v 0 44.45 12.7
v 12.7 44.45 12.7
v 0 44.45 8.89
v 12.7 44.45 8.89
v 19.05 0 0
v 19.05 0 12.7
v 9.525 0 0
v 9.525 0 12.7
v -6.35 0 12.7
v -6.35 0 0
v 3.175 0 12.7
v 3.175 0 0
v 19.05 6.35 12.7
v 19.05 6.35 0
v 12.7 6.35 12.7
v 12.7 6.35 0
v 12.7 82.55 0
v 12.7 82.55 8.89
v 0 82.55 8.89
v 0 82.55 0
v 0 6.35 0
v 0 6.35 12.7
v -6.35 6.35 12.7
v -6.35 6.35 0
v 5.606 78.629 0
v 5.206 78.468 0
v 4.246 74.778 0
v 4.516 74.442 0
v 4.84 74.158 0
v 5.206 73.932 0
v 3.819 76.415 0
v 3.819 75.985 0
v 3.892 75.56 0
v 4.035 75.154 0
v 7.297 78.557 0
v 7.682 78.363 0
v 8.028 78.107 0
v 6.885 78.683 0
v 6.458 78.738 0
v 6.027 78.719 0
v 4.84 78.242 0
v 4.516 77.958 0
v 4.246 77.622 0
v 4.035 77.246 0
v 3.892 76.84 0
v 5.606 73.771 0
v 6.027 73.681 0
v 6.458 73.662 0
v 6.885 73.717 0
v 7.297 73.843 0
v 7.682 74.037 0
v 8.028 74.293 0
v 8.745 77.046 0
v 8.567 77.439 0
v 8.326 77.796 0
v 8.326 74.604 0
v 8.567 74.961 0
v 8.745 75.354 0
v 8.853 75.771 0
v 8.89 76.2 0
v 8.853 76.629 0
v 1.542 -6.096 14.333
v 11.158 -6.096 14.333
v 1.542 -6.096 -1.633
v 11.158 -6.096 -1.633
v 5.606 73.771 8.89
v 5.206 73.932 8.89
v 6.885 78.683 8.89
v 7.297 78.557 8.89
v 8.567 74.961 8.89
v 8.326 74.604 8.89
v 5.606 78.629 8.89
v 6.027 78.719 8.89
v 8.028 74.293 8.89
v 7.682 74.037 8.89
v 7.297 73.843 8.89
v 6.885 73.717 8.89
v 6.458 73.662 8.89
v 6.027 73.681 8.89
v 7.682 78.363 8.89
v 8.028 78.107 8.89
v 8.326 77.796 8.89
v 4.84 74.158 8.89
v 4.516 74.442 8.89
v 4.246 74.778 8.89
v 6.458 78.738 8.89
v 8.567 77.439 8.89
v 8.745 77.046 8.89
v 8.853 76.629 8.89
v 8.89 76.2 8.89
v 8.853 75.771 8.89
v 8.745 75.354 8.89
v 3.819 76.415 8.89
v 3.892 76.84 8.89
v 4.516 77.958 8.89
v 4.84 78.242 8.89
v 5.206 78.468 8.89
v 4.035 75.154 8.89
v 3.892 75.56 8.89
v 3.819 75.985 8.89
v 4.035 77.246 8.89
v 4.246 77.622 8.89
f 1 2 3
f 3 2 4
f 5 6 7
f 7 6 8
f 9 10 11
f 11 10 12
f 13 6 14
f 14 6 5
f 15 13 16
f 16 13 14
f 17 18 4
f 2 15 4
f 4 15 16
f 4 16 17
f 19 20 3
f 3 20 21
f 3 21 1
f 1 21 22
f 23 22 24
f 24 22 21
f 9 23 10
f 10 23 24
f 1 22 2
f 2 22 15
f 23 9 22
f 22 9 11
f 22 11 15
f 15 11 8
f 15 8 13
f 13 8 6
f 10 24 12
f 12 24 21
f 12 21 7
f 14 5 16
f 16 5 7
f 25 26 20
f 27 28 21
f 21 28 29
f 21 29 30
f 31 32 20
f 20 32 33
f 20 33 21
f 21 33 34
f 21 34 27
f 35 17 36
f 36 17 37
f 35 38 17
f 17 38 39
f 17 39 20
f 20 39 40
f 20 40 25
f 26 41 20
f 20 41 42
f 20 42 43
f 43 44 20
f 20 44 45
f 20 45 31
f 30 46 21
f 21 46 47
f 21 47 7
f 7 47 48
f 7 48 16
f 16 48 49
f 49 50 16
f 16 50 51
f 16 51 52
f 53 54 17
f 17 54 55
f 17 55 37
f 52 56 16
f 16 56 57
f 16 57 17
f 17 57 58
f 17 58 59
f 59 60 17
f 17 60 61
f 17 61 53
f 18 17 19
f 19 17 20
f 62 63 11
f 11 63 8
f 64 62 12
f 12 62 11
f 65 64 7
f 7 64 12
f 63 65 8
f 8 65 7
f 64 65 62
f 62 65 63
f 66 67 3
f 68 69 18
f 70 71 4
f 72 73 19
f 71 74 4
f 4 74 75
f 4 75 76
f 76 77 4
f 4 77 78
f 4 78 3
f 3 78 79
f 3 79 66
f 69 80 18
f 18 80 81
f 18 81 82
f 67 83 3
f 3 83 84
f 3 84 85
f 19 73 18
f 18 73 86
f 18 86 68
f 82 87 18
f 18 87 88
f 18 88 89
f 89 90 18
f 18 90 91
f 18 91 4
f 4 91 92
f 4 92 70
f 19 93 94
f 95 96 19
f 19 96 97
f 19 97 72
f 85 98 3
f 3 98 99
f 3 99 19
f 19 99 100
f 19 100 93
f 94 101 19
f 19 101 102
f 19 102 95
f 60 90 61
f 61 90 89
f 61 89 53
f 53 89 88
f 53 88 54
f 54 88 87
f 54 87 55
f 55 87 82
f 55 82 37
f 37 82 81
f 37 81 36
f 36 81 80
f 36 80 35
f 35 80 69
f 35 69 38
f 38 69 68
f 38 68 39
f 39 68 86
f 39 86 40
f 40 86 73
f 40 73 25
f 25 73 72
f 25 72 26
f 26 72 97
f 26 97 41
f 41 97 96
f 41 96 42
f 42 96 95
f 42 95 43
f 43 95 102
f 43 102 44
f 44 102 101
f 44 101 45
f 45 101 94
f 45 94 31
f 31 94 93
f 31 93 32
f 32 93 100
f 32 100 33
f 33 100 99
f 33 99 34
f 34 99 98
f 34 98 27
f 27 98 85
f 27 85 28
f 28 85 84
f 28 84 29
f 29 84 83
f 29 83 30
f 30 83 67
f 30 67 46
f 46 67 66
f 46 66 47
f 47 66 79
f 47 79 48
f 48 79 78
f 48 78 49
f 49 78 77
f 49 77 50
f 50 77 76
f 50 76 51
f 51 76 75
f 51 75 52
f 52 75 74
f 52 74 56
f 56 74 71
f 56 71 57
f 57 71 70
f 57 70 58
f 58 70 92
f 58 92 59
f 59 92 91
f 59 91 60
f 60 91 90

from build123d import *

# Parameters (mm, degrees)
BOSS_EXTRUDE2_DEPTH = 12.7
SKETCH2_W           = 12.7
SKETCH2_H           = 6.35
BOSS_EXTRUDE3_DEPTH = 38.1
SKETCH3_W           = 6.35
SKETCH3_H           = 12.7
BOSS_EXTRUDE5_DEPTH = 6.096
BOSS_EXTRUDE5_DRAFT = -15
SKETCH4_W           = 12.7
SKETCH4_H           = 38.1
BOSS_EXTRUDE6_DEPTH = 2.54
SKETCH5_R           = 2.54
CUT_EXTRUDE1_DEPTH  = 8.89


with BuildPart() as part:
    # Sketch1 → Boss-Extrude2 (new body)
    with BuildSketch(Plane.XY):
        Polygon((12.7, 0), (19.05, 0), (19.05, 6.35), (12.7, 6.35), (12.7, 44.45), (0, 44.45), (0, 6.35), (-6.35, 6.35), (-6.35, 0), (0, 0), align=None)
    extrude(amount=BOSS_EXTRUDE2_DEPTH)

    # Sketch2 → Boss-Extrude3 (add)
    with BuildSketch(Plane(origin=(0, 44.45, 0), x_dir=(1, 0, 0), z_dir=(0, 1, 0))):
        with Locations((6.35, -3.175)):
            Rectangle(SKETCH2_W, SKETCH2_H)
    extrude(amount=BOSS_EXTRUDE3_DEPTH)


with BuildPart() as boss_extrude5_tool:
    # Sketch3 → Boss-Extrude5 (with draft: the straight prism first)
    with BuildSketch(Plane.XZ):
        with Locations((6.35, 6.35)):
            Rectangle(SKETCH3_W, SKETCH3_H)
    extrude(amount=BOSS_EXTRUDE5_DEPTH)
    # Boss-Extrude5: the draft: its side faces are tilted about the plane it starts from
    boss_extrude5_sides = [boss_extrude5_tool.faces().sort_by_distance(p)[0] for p in [
        (6.35, -3.048, 0),
        (9.525, -3.048, 6.35),
        (6.35, -3.048, 12.7),
        (3.175, -3.048, 6.35),
    ]]
    draft(boss_extrude5_sides, Plane.XZ, BOSS_EXTRUDE5_DRAFT)


with BuildPart() as part_1:
    add(part.part)

    # Boss-Extrude5: add boss_extrude5_tool
    add(boss_extrude5_tool.part)

    # Sketch4 → Boss-Extrude6 (add)
    with BuildSketch(Plane.XY.offset(6.35)):
        with Locations((6.35, 63.5)):
            Rectangle(SKETCH4_W, SKETCH4_H)
    extrude(amount=BOSS_EXTRUDE6_DEPTH)

    # Sketch5 → Cut-Extrude1 (cut)
    with BuildSketch(Plane.XY.offset(8.89)):
        with Locations((6.35, 76.2)):
            Circle(SKETCH5_R)
    extrude(amount=-CUT_EXTRUDE1_DEPTH, mode=Mode.SUBTRACT)


solid = part_1.part
